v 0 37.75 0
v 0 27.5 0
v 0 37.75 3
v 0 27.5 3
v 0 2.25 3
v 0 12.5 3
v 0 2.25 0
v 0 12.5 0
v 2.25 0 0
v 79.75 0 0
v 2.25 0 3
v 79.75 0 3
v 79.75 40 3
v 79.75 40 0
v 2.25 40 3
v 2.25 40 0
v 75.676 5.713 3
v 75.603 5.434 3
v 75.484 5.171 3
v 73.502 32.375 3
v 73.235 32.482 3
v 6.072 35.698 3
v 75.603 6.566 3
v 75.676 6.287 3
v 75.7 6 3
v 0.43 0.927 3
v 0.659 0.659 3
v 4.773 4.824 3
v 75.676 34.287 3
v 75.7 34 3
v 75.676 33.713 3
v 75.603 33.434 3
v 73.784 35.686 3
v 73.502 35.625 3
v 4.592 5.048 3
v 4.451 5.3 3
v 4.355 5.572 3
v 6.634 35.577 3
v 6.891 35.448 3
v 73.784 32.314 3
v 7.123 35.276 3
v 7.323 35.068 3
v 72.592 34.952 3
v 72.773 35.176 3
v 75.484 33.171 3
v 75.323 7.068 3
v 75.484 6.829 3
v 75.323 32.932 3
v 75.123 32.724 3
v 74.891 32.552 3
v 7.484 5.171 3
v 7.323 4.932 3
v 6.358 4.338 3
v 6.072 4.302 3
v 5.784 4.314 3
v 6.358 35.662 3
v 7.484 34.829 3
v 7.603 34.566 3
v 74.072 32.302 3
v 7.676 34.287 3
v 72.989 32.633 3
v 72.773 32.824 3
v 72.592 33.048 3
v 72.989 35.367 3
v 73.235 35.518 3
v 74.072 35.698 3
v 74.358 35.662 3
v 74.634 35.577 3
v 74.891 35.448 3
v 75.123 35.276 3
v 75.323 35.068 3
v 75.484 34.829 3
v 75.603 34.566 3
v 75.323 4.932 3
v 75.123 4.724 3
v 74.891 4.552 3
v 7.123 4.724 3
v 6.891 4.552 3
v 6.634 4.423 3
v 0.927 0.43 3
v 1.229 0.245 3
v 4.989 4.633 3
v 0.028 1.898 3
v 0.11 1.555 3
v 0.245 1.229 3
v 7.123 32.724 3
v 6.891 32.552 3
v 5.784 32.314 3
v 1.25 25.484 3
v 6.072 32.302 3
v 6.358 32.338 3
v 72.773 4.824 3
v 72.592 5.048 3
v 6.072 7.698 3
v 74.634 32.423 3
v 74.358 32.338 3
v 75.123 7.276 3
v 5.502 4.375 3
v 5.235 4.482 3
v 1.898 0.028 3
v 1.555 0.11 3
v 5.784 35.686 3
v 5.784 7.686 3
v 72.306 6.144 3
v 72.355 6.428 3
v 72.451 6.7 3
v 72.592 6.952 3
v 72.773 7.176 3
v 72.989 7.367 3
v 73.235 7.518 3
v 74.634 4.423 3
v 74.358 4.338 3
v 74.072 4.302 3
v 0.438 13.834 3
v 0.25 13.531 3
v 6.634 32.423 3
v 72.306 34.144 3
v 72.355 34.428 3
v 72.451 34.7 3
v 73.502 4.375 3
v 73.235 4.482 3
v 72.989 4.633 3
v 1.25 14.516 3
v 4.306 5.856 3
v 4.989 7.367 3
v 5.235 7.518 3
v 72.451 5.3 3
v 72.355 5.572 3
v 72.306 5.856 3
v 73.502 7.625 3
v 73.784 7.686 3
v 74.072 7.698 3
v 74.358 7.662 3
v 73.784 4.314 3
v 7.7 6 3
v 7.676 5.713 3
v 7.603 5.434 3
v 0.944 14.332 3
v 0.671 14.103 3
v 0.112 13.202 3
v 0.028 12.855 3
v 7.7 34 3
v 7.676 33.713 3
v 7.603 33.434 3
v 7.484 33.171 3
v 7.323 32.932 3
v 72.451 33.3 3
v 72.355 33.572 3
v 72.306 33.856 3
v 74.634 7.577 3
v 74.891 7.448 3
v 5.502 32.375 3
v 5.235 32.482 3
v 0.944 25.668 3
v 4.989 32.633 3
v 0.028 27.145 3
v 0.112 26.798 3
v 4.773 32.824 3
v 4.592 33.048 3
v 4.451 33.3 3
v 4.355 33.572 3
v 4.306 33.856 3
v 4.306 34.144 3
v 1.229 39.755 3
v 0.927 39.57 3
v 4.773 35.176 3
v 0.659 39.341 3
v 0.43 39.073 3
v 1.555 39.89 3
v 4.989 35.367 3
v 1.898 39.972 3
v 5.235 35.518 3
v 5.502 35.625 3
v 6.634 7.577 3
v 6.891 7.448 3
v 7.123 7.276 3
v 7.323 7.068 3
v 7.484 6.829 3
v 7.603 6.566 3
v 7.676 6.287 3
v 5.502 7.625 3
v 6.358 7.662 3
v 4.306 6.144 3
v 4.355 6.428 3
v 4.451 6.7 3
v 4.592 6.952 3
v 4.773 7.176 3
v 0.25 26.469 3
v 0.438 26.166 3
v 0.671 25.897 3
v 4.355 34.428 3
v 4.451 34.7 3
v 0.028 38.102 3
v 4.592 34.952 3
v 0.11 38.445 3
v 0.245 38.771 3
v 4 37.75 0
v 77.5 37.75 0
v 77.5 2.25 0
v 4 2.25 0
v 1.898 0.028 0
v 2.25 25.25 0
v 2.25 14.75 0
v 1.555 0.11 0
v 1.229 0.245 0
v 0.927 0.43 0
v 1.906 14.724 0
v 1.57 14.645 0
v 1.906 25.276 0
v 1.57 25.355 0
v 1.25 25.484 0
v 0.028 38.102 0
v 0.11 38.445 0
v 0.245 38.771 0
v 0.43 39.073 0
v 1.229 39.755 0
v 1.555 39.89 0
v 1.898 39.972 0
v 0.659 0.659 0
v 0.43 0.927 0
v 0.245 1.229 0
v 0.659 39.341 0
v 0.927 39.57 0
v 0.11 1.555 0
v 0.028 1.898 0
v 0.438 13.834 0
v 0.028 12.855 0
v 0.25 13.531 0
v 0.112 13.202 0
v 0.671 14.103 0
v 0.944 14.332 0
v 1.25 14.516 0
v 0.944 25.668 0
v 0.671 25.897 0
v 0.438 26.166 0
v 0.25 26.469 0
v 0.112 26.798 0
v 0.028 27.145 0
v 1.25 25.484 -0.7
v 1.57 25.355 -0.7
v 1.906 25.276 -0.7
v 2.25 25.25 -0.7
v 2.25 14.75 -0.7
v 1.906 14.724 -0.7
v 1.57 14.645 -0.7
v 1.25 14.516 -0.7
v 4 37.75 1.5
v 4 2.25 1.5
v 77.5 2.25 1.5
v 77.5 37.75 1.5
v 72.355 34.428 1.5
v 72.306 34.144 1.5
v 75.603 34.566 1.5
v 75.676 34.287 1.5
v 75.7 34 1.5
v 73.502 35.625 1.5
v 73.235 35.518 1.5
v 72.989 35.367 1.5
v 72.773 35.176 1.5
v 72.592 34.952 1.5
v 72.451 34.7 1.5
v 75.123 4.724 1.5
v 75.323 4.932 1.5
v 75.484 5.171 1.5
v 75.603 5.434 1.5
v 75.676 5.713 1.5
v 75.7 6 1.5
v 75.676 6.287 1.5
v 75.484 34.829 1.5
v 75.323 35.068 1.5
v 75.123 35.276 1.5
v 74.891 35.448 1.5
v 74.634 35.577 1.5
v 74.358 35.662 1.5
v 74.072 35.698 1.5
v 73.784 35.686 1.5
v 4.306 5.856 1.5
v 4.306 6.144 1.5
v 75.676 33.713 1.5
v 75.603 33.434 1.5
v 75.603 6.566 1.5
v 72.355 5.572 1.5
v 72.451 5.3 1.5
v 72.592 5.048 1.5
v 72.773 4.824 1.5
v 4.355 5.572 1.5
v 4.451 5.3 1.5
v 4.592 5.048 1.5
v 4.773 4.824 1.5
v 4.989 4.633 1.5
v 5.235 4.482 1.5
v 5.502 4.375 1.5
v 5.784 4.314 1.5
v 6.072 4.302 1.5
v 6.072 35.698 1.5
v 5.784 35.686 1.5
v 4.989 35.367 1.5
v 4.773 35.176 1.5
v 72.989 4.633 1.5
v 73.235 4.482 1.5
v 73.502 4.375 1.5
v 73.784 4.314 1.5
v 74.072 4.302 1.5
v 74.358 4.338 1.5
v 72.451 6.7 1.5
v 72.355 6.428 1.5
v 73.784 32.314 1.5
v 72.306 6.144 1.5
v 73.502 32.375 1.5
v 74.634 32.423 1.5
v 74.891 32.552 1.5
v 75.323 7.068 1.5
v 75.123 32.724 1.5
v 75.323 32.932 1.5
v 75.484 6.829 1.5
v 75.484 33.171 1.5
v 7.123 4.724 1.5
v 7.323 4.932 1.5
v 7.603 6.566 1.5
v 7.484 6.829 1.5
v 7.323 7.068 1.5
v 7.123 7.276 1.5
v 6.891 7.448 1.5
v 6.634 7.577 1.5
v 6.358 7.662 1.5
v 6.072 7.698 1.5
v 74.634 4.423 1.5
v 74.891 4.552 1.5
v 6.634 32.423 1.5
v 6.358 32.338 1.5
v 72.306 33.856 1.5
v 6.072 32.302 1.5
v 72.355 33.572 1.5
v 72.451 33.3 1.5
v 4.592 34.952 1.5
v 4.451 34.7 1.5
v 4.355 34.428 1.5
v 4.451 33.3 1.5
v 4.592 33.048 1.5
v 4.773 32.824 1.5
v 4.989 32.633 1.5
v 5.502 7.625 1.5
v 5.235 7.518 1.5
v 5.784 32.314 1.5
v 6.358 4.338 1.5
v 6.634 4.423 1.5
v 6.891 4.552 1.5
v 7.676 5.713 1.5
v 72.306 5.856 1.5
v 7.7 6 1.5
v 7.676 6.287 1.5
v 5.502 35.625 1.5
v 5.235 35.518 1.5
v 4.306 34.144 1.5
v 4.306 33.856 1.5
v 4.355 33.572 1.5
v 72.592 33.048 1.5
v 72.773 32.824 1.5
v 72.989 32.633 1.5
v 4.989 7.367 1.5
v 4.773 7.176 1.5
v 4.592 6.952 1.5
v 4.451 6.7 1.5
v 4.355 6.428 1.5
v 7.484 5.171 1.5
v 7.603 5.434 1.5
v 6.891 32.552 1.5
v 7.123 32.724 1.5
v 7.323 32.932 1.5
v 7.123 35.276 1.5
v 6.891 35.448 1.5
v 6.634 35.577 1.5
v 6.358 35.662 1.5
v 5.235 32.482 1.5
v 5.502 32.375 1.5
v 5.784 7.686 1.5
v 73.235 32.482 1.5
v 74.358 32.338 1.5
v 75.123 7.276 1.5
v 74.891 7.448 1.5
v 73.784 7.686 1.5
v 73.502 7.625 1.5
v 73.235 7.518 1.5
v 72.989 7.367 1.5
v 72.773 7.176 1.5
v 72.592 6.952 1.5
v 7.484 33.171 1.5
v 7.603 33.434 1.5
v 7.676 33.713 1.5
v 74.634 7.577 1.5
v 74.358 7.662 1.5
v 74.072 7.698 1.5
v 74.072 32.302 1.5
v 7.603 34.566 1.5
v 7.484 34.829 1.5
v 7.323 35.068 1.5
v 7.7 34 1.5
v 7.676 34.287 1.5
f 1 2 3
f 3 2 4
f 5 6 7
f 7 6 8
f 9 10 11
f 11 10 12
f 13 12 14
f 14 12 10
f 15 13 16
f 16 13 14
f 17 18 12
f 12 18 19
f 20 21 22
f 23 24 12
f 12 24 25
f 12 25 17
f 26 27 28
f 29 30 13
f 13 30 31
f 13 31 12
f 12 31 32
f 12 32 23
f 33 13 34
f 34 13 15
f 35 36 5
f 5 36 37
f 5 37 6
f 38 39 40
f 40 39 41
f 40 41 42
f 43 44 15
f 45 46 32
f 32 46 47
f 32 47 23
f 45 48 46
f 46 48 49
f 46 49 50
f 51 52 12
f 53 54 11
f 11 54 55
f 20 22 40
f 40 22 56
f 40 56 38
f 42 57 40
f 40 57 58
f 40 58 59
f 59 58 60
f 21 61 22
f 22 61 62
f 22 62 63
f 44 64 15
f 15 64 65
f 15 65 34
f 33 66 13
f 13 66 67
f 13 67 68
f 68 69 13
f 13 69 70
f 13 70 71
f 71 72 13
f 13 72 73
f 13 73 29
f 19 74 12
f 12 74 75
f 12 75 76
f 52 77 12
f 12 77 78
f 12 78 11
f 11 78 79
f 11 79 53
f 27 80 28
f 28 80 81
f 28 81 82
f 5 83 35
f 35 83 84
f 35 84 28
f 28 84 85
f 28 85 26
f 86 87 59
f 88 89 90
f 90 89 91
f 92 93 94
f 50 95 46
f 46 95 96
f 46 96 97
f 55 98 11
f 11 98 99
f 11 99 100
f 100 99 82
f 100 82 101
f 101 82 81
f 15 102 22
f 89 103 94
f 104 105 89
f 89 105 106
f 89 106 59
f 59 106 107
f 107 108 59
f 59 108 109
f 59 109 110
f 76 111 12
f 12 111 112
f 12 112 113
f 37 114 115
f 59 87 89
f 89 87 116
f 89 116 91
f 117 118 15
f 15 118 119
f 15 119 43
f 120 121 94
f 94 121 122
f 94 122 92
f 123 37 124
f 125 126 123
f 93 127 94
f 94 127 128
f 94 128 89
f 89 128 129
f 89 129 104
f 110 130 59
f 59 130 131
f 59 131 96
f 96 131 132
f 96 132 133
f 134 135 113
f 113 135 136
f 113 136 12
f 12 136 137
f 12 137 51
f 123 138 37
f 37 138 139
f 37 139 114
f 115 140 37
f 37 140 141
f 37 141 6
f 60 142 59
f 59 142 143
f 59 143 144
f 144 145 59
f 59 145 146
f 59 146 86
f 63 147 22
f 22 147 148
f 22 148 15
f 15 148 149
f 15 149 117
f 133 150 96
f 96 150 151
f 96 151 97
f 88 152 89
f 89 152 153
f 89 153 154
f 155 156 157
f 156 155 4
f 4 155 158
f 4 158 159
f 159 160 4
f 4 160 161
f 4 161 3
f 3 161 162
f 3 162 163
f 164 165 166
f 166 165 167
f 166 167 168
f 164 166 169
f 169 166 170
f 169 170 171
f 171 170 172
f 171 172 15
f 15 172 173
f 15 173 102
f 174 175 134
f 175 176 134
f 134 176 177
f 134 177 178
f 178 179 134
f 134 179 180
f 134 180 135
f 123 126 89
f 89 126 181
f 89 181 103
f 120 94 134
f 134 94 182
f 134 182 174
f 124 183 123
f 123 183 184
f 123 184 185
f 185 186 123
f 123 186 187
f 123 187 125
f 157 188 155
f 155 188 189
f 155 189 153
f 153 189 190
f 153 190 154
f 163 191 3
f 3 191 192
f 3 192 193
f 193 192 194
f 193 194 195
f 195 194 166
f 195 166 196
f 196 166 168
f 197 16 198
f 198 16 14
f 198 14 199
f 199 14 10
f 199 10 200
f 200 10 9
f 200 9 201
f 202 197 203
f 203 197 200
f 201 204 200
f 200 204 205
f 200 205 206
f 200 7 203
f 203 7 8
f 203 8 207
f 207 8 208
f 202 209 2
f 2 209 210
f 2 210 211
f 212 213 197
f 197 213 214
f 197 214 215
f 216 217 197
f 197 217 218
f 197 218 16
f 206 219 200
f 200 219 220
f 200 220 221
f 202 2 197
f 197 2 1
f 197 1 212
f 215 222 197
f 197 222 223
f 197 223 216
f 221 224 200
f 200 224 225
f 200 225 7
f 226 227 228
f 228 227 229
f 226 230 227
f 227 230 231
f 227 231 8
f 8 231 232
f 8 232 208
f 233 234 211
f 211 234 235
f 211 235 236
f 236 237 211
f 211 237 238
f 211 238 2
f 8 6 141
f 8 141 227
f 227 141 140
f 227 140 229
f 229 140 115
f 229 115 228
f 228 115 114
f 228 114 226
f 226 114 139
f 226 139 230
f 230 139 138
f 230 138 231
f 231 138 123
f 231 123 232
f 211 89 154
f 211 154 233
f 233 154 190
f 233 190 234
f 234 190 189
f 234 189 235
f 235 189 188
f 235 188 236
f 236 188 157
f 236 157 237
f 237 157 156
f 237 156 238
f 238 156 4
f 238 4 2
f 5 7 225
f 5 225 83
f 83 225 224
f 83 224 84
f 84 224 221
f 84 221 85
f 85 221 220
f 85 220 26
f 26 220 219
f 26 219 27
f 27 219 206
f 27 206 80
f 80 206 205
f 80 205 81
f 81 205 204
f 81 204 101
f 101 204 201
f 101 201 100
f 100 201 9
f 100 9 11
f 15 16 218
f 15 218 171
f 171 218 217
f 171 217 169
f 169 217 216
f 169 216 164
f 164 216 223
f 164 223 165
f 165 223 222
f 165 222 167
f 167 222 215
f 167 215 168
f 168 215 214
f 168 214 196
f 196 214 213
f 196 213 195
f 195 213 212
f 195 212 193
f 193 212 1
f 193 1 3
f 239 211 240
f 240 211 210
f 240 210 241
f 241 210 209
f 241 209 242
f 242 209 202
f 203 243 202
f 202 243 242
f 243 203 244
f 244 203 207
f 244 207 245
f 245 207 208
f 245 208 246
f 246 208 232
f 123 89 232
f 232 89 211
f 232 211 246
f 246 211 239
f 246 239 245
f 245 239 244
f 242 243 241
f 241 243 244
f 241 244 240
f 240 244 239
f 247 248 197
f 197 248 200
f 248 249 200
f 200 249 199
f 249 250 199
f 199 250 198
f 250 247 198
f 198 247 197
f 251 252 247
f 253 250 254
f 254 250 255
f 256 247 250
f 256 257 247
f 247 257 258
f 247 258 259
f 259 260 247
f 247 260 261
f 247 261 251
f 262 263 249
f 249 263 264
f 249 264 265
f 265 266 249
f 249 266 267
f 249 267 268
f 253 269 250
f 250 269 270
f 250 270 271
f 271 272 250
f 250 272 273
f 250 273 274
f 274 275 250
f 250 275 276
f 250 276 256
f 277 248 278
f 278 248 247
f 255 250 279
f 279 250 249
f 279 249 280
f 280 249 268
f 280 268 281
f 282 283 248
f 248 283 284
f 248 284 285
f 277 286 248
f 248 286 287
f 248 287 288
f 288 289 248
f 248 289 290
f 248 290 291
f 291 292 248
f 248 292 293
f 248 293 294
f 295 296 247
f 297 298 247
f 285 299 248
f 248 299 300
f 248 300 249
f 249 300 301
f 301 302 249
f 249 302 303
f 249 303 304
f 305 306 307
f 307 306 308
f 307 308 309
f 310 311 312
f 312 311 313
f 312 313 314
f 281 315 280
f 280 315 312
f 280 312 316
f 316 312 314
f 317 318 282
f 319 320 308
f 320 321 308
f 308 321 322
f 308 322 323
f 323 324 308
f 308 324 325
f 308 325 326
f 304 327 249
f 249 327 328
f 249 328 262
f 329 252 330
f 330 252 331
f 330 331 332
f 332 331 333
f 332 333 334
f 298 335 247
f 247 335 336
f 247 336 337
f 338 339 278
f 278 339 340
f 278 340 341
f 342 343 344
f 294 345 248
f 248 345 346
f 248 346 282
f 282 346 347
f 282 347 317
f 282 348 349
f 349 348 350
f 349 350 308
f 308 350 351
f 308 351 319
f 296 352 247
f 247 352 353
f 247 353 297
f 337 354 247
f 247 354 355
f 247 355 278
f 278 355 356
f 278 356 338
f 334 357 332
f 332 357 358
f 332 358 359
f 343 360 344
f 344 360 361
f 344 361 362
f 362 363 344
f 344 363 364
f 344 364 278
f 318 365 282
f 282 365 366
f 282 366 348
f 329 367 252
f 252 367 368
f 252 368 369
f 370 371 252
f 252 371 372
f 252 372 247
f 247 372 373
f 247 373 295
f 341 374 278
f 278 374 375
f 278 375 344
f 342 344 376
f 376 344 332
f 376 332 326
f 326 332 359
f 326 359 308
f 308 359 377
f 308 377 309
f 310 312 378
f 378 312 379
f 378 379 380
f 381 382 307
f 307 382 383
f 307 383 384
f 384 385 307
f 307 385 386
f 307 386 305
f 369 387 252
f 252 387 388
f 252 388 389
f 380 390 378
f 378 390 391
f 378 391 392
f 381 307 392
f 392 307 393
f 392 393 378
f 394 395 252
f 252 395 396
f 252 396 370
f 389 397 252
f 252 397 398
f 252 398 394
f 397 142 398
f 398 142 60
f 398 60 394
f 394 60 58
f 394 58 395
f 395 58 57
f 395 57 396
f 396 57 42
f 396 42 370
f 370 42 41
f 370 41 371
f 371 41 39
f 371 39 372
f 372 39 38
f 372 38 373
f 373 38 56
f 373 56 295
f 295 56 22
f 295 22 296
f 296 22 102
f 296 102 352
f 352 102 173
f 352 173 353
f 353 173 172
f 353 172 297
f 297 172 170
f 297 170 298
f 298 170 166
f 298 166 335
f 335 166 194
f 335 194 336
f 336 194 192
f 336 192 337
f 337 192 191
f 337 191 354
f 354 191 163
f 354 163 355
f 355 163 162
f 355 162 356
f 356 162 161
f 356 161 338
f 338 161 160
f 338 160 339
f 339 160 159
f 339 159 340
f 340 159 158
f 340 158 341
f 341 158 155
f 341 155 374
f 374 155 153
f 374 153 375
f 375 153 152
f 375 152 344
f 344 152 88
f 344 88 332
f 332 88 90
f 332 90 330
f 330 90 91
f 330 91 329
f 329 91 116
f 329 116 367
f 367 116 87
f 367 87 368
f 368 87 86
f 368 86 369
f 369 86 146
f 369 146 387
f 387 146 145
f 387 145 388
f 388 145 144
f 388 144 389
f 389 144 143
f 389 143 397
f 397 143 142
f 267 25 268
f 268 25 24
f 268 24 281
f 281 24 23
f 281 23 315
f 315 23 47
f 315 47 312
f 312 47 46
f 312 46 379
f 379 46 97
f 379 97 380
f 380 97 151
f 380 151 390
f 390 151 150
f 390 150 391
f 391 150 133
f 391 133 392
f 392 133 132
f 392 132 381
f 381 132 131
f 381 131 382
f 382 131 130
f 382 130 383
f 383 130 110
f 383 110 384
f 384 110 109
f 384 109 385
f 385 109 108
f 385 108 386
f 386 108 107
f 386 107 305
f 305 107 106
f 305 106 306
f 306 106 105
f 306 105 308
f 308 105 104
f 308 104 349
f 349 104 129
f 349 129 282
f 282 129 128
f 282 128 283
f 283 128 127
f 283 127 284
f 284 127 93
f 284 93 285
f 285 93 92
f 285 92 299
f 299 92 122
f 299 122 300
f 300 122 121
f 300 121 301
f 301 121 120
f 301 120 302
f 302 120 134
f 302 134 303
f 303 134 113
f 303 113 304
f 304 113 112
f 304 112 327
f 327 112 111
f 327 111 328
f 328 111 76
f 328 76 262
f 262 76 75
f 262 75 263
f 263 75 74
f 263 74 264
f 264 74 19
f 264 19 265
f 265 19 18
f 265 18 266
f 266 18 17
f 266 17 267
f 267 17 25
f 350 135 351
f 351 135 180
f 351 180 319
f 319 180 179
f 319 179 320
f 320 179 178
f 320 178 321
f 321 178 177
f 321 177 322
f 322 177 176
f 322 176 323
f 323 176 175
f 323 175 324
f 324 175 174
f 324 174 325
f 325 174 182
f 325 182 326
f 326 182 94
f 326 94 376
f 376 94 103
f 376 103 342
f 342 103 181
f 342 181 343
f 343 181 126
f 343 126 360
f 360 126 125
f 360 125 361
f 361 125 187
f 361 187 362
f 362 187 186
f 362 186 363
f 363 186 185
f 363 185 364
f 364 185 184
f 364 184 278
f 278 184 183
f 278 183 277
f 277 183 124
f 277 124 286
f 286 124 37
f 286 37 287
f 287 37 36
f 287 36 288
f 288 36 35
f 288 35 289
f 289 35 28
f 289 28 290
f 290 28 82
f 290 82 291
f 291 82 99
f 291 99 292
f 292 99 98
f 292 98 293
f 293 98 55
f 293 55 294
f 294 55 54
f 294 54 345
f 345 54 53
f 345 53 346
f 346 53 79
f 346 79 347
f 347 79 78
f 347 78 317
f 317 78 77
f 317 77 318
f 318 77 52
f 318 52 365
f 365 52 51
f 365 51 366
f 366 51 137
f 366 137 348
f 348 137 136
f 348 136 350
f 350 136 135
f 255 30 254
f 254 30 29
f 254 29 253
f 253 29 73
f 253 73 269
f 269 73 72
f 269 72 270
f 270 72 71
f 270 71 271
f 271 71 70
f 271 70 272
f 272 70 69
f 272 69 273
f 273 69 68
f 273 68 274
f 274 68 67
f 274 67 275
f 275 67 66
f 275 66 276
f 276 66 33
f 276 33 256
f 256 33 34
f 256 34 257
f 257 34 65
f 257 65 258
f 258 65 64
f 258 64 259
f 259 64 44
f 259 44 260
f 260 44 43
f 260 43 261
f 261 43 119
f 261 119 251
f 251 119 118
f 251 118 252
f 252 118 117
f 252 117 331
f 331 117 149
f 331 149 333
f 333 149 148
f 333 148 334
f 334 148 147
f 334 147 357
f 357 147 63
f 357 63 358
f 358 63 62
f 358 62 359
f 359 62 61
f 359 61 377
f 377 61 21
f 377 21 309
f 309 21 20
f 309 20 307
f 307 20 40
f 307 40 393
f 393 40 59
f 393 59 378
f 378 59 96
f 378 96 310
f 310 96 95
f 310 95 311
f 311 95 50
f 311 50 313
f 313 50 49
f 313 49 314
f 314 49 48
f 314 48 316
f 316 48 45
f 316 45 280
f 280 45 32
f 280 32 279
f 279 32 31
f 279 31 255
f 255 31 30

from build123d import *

# Parameters (mm, degrees)
SKETCH1_W           = 79.75
SKETCH1_H           = 40
BOSS_EXTRUDE1_DEPTH = 3
SKETCH2_W           = 2.25
SKETCH2_H           = 10.5
CUT_EXTRUDE1_DEPTH  = 90.26960569
FILLET2_R           = 2.25
FILLET1_R           = 2.25
BOSS_EXTRUDE4_DEPTH = 3.7
SKETCH7_W           = 73.5
SKETCH7_H           = 35.5
OLED_RECESS_DEPTH   = 1.5
SKETCH9_R           = 1.7
CUT_EXTRUDE5_DEPTH  = 90.295870565


with BuildPart() as part:
    # Sketch1 → Boss-Extrude1 (new body)
    with BuildSketch(Plane.XY):
        with Locations((39.875, 20)):
            Rectangle(SKETCH1_W, SKETCH1_H)
    extrude(amount=BOSS_EXTRUDE1_DEPTH)

    # Sketch2 → Cut-Extrude1 (cut, through all)
    with BuildSketch(Plane.XY.offset(3)):
        with Locations((1.125, 20)):
            Rectangle(SKETCH2_W, SKETCH2_H)
    extrude(amount=-CUT_EXTRUDE1_DEPTH, mode=Mode.SUBTRACT)

    # Fillet2
    fillet2_edges = [part.edges().sort_by_distance(p)[0] for p in [
        (0, 14.75, 1.5),
        (0, 25.25, 1.5),
    ]]
    fillet(fillet2_edges, radius=FILLET2_R - 0.0001)  # a hair under: the kernel refuses the full size

    # Fillet1
    fillet1_edges = [part.edges().sort_by_distance(p)[0] for p in [
        (0, 40, 1.5),
        (0, 0, 1.5),
    ]]
    fillet(fillet1_edges, radius=FILLET1_R)

    # Sketch6 → Boss-Extrude4 (add)
    with BuildSketch(Plane.XY.offset(3)):
        with BuildLine():
            Line((1.25, 25.484435563), (1.25, 14.515564437))
            ThreePointArc((1.25, 14.515564437), (1.736443763, 14.69060722), (2.25, 14.75))
            Line((2.25, 14.75), (2.25, 25.25))
            ThreePointArc((2.25, 25.25), (1.736443763, 25.30939278), (1.25, 25.484435563))
        make_face()
    extrude(amount=-BOSS_EXTRUDE4_DEPTH)

    # Sketch7 → oled-recess (cut)
    with BuildSketch(Plane(origin=(0, 0, 0), x_dir=(-1, 0, 0), z_dir=(0, 0, -1))):
        with Locations((-40.75, 20)):
            Rectangle(SKETCH7_W, SKETCH7_H)
    extrude(amount=-OLED_RECESS_DEPTH, mode=Mode.SUBTRACT)

    # Sketch9 → Cut-Extrude5 (cut, through all)
    with BuildSketch(Plane.XY.offset(3)):
        with Locations((6, 34)):
            Circle(SKETCH9_R)
        with Locations((74, 34)):
            Circle(SKETCH9_R)
        with Locations((6, 6)):
            Circle(SKETCH9_R)
        with Locations((74, 6)):
            Circle(SKETCH9_R)
    extrude(amount=-CUT_EXTRUDE5_DEPTH, mode=Mode.SUBTRACT)


solid = part.part
